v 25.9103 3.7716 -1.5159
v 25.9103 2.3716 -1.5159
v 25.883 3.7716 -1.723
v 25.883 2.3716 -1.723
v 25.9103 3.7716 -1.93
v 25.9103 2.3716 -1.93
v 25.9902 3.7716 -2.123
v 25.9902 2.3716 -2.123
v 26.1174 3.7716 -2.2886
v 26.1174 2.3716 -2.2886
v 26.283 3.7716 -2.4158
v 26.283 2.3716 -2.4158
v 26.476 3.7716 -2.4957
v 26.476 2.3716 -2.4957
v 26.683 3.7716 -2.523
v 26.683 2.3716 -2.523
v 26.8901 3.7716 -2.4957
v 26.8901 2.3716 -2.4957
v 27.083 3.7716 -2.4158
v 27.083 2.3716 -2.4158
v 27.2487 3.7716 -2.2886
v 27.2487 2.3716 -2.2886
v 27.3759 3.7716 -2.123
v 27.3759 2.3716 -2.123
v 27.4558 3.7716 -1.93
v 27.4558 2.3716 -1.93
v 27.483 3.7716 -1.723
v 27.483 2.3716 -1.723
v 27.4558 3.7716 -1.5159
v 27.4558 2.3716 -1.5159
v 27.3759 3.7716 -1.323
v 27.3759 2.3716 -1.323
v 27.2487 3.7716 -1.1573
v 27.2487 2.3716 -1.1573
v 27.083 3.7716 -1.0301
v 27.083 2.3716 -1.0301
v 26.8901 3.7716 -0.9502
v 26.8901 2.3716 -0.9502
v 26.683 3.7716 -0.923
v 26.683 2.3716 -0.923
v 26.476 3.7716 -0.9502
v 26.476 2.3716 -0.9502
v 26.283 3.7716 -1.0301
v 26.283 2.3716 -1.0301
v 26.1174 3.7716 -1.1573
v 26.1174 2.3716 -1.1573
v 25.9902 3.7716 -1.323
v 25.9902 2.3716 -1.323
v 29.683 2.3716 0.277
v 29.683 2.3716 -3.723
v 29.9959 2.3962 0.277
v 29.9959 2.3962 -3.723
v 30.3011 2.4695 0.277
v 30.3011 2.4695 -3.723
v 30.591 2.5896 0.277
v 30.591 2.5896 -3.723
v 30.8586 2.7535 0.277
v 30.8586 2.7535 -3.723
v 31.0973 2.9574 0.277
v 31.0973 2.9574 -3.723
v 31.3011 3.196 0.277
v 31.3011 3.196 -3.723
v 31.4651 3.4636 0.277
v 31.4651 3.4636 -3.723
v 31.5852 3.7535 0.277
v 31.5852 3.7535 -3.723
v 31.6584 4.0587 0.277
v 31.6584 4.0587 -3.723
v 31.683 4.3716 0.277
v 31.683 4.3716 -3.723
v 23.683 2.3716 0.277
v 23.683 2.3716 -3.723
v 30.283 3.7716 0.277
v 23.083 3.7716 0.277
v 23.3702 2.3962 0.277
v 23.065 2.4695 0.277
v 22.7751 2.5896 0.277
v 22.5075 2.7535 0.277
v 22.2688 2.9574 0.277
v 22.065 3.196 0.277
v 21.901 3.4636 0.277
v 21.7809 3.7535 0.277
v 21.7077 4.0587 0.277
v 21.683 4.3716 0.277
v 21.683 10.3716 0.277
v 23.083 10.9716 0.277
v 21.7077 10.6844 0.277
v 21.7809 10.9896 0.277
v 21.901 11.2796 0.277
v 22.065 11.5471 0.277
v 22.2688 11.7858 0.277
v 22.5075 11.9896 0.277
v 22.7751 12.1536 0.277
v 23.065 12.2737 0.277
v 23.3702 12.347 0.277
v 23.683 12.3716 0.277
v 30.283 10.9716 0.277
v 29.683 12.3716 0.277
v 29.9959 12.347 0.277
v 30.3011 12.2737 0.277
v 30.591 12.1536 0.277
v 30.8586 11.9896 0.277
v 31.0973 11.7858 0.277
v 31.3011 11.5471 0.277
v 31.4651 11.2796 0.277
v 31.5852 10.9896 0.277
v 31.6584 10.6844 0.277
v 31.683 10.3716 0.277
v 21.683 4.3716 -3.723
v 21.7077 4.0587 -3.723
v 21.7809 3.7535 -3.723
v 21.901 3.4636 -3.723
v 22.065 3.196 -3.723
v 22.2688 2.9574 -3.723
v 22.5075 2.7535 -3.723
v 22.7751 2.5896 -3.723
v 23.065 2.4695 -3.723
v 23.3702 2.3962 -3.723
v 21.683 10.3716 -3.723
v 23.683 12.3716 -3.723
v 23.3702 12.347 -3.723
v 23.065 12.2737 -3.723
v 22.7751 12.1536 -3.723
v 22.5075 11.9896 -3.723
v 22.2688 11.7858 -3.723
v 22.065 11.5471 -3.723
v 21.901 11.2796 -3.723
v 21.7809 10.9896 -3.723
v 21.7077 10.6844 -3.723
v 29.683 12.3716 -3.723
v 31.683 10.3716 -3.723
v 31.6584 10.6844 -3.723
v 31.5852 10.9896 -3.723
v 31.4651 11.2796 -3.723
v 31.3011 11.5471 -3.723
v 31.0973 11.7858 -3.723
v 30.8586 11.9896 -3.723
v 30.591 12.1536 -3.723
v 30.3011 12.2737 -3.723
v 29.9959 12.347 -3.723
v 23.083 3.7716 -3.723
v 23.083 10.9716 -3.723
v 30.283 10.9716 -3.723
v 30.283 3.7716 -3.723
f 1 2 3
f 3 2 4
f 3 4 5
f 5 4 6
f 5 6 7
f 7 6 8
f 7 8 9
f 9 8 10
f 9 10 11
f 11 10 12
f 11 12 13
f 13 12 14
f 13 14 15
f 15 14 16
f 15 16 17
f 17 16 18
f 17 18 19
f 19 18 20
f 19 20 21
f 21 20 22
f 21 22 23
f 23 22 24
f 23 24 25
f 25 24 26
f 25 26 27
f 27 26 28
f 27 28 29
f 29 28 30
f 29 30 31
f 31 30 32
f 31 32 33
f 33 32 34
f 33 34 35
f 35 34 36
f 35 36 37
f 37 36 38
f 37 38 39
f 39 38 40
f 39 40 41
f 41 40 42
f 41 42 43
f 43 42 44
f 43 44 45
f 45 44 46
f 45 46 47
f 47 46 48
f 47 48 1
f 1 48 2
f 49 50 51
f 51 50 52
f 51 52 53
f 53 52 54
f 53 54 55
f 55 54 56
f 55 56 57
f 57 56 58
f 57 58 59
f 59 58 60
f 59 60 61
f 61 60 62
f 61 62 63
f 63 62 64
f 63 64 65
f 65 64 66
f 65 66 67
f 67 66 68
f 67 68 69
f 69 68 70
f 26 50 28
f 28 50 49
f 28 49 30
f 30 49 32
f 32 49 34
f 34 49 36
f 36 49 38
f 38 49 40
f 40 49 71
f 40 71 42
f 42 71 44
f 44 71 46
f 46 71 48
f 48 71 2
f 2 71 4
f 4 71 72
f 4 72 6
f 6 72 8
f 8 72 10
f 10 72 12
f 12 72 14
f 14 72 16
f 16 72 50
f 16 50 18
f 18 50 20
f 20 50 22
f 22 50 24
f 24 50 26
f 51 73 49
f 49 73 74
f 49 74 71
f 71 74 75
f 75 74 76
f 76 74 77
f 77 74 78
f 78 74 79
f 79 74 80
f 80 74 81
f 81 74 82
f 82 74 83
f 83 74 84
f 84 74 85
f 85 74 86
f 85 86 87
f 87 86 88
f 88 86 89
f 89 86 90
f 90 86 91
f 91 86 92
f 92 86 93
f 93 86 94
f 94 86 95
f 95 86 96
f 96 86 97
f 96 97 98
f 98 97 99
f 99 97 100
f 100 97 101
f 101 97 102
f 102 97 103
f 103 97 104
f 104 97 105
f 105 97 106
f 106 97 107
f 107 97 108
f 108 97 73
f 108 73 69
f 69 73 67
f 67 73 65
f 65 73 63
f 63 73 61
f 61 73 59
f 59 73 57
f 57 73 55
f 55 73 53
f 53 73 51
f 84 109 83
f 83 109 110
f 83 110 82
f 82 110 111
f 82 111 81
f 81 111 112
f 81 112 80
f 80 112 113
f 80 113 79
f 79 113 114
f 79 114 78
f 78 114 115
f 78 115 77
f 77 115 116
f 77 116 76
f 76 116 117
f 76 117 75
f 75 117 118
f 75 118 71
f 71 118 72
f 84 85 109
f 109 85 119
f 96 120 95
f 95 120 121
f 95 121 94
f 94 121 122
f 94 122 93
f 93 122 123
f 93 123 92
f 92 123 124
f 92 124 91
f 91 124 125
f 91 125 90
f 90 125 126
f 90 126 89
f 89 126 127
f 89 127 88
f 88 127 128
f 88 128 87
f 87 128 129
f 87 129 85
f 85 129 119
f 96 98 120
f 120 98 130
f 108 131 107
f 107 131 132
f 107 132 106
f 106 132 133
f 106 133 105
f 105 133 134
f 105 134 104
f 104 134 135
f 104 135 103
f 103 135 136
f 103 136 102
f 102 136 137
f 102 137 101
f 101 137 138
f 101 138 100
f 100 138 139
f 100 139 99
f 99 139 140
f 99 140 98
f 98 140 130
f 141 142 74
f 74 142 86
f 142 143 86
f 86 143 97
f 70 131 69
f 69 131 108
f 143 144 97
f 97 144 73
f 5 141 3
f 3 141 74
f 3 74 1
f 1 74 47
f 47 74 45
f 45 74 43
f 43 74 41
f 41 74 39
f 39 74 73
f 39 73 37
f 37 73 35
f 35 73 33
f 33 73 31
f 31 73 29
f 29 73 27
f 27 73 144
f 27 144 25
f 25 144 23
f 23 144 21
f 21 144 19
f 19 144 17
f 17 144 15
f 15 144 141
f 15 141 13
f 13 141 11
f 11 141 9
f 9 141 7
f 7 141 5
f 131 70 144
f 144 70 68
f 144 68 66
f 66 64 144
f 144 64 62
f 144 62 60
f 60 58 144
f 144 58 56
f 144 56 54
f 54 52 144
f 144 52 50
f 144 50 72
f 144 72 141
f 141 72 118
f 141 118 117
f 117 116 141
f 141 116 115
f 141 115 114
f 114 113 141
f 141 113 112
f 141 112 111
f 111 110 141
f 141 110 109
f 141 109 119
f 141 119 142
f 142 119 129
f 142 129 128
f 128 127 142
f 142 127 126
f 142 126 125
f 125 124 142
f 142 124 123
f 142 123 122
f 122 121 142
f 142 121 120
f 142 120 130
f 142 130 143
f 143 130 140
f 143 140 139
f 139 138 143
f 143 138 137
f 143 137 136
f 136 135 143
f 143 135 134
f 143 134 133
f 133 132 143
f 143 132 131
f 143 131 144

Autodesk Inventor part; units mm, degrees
ref_plane "YZ Plane" through (0, 0, 0) normal (1, 0, 0) x (0, 1, 0)
ref_plane "XZ Plane" through (0, 0, 0) normal (0, 1, 0) x (-1, 0, 0)
ref_plane "作業平面1" through (26.683, 7.3716, 0.277) normal (0, 0, 1) x (0, -1, 0)
ref_plane "作業平面2" through (3.1146, -16.3784, -3.723) normal (0, 0, 1) x (1, 0, 0)
sketch "スケッチ1" plane through (26.683, 7.3716, 0.277) normal (0, 0, 1) x (0, -1, 0)
  arc A0 (0.9652, -1.8217) -> (0.7443, -1.8564) centre (0.9303, -2.3204) ccw projected
  arc A1 (0.7443, 1.8564) -> (0.7443, -1.8564) centre (0, 0) ccw projected
  arc A2 (0.7443, 1.8564) -> (0.9652, 1.8217) centre (0.9303, 2.3204) ccw projected
  arc A3 (1.5, 1.3229) -> (0.9652, 1.8217) centre (1, 1.3229) ccw projected
  line L0 (1.5, 1.3229) -> (1.5, -1.3229) projected
  arc A4 (0.9652, -1.8217) -> (1.5, -1.3229) centre (1, -1.3229) ccw projected
  arc A5 (2, -3.5) -> (3.5, -2) centre (2, -2) ccw projected
  line L1 (3.5, -2) -> (3.5, 2) projected
  arc A6 (3.5, 2) -> (2, 3.5) centre (2, 2) ccw projected
  line L2 (2, 3.5) -> (-2, 3.5) projected
  arc A7 (-2, 3.5) -> (-3.5, 2) centre (-2, 2) ccw projected
  line L3 (-3.5, 2) -> (-3.5, -2) projected
  arc A8 (-3.5, -2) -> (-2, -3.5) centre (-2, -2) ccw projected
  line L4 (-2, -3.5) -> (2, -3.5) projected
  line L5 (5, -5) -> (-5, -5)
  line L6 (-5, -5) -> (-5, 5)
  line L7 (-5, 5) -> (5, 5)
  line L8 (5, 5) -> (5, -5)
  line L9 (5, -5) -> (-5, 5) construction
  line L10 (-5, -5) -> (5, 5) construction
  line L11 (3.6, -3.6) -> (-3.6, -3.6)
  line L12 (-3.6, -3.6) -> (-3.6, 3.6)
  line L13 (-3.6, 3.6) -> (3.6, 3.6)
  line L14 (3.6, 3.6) -> (3.6, -3.6)
  line L15 (3.6, -3.6) -> (-3.6, 3.6) construction
  line L16 (-3.6, -3.6) -> (3.6, 3.6) construction
  point P0 (7.3716, -26.683)
  dimension "d0" = 0.1
  dimension "d1" = 10
extrude "押し出し1" add sketch "スケッチ1" against normal up to surface (4 mm away) contours L5 L6 L7 L8
fillet "フィレット1" radius 2 4 edges at (31.683, 12.3716, -1.723) (21.683, 12.3716, -1.723) (21.683, 2.3716, -1.723) (31.683, 2.3716, -1.723)
sketch "スケッチ3" plane through (23.683, 2.3716, 0.277) normal (0, -1, 0) x (1, 0, 0)
  line L0 (6, 0) -> (6, -4) projected
  line L1 (0, 0) -> (6, 0) projected
  line L2 (0, -4) -> (0, 0) projected
  circle A0 centre (3, -2) radius 0.8
  line L3 (6, -4) -> (0, -4) projected
  line L4 (0, 0) -> (6, -4) construction
  line L5 (0, -4) -> (6, 0) construction
  point P0 (-23.683, -0.277)
  point P1 (6, -3.5)
  point P2 (3, -2)
  dimension "d11" = 1.6
extrude "押し出し3" cut sketch "スケッチ3" against normal blind 4 contours A0
properties part number "Tap_zigu"
